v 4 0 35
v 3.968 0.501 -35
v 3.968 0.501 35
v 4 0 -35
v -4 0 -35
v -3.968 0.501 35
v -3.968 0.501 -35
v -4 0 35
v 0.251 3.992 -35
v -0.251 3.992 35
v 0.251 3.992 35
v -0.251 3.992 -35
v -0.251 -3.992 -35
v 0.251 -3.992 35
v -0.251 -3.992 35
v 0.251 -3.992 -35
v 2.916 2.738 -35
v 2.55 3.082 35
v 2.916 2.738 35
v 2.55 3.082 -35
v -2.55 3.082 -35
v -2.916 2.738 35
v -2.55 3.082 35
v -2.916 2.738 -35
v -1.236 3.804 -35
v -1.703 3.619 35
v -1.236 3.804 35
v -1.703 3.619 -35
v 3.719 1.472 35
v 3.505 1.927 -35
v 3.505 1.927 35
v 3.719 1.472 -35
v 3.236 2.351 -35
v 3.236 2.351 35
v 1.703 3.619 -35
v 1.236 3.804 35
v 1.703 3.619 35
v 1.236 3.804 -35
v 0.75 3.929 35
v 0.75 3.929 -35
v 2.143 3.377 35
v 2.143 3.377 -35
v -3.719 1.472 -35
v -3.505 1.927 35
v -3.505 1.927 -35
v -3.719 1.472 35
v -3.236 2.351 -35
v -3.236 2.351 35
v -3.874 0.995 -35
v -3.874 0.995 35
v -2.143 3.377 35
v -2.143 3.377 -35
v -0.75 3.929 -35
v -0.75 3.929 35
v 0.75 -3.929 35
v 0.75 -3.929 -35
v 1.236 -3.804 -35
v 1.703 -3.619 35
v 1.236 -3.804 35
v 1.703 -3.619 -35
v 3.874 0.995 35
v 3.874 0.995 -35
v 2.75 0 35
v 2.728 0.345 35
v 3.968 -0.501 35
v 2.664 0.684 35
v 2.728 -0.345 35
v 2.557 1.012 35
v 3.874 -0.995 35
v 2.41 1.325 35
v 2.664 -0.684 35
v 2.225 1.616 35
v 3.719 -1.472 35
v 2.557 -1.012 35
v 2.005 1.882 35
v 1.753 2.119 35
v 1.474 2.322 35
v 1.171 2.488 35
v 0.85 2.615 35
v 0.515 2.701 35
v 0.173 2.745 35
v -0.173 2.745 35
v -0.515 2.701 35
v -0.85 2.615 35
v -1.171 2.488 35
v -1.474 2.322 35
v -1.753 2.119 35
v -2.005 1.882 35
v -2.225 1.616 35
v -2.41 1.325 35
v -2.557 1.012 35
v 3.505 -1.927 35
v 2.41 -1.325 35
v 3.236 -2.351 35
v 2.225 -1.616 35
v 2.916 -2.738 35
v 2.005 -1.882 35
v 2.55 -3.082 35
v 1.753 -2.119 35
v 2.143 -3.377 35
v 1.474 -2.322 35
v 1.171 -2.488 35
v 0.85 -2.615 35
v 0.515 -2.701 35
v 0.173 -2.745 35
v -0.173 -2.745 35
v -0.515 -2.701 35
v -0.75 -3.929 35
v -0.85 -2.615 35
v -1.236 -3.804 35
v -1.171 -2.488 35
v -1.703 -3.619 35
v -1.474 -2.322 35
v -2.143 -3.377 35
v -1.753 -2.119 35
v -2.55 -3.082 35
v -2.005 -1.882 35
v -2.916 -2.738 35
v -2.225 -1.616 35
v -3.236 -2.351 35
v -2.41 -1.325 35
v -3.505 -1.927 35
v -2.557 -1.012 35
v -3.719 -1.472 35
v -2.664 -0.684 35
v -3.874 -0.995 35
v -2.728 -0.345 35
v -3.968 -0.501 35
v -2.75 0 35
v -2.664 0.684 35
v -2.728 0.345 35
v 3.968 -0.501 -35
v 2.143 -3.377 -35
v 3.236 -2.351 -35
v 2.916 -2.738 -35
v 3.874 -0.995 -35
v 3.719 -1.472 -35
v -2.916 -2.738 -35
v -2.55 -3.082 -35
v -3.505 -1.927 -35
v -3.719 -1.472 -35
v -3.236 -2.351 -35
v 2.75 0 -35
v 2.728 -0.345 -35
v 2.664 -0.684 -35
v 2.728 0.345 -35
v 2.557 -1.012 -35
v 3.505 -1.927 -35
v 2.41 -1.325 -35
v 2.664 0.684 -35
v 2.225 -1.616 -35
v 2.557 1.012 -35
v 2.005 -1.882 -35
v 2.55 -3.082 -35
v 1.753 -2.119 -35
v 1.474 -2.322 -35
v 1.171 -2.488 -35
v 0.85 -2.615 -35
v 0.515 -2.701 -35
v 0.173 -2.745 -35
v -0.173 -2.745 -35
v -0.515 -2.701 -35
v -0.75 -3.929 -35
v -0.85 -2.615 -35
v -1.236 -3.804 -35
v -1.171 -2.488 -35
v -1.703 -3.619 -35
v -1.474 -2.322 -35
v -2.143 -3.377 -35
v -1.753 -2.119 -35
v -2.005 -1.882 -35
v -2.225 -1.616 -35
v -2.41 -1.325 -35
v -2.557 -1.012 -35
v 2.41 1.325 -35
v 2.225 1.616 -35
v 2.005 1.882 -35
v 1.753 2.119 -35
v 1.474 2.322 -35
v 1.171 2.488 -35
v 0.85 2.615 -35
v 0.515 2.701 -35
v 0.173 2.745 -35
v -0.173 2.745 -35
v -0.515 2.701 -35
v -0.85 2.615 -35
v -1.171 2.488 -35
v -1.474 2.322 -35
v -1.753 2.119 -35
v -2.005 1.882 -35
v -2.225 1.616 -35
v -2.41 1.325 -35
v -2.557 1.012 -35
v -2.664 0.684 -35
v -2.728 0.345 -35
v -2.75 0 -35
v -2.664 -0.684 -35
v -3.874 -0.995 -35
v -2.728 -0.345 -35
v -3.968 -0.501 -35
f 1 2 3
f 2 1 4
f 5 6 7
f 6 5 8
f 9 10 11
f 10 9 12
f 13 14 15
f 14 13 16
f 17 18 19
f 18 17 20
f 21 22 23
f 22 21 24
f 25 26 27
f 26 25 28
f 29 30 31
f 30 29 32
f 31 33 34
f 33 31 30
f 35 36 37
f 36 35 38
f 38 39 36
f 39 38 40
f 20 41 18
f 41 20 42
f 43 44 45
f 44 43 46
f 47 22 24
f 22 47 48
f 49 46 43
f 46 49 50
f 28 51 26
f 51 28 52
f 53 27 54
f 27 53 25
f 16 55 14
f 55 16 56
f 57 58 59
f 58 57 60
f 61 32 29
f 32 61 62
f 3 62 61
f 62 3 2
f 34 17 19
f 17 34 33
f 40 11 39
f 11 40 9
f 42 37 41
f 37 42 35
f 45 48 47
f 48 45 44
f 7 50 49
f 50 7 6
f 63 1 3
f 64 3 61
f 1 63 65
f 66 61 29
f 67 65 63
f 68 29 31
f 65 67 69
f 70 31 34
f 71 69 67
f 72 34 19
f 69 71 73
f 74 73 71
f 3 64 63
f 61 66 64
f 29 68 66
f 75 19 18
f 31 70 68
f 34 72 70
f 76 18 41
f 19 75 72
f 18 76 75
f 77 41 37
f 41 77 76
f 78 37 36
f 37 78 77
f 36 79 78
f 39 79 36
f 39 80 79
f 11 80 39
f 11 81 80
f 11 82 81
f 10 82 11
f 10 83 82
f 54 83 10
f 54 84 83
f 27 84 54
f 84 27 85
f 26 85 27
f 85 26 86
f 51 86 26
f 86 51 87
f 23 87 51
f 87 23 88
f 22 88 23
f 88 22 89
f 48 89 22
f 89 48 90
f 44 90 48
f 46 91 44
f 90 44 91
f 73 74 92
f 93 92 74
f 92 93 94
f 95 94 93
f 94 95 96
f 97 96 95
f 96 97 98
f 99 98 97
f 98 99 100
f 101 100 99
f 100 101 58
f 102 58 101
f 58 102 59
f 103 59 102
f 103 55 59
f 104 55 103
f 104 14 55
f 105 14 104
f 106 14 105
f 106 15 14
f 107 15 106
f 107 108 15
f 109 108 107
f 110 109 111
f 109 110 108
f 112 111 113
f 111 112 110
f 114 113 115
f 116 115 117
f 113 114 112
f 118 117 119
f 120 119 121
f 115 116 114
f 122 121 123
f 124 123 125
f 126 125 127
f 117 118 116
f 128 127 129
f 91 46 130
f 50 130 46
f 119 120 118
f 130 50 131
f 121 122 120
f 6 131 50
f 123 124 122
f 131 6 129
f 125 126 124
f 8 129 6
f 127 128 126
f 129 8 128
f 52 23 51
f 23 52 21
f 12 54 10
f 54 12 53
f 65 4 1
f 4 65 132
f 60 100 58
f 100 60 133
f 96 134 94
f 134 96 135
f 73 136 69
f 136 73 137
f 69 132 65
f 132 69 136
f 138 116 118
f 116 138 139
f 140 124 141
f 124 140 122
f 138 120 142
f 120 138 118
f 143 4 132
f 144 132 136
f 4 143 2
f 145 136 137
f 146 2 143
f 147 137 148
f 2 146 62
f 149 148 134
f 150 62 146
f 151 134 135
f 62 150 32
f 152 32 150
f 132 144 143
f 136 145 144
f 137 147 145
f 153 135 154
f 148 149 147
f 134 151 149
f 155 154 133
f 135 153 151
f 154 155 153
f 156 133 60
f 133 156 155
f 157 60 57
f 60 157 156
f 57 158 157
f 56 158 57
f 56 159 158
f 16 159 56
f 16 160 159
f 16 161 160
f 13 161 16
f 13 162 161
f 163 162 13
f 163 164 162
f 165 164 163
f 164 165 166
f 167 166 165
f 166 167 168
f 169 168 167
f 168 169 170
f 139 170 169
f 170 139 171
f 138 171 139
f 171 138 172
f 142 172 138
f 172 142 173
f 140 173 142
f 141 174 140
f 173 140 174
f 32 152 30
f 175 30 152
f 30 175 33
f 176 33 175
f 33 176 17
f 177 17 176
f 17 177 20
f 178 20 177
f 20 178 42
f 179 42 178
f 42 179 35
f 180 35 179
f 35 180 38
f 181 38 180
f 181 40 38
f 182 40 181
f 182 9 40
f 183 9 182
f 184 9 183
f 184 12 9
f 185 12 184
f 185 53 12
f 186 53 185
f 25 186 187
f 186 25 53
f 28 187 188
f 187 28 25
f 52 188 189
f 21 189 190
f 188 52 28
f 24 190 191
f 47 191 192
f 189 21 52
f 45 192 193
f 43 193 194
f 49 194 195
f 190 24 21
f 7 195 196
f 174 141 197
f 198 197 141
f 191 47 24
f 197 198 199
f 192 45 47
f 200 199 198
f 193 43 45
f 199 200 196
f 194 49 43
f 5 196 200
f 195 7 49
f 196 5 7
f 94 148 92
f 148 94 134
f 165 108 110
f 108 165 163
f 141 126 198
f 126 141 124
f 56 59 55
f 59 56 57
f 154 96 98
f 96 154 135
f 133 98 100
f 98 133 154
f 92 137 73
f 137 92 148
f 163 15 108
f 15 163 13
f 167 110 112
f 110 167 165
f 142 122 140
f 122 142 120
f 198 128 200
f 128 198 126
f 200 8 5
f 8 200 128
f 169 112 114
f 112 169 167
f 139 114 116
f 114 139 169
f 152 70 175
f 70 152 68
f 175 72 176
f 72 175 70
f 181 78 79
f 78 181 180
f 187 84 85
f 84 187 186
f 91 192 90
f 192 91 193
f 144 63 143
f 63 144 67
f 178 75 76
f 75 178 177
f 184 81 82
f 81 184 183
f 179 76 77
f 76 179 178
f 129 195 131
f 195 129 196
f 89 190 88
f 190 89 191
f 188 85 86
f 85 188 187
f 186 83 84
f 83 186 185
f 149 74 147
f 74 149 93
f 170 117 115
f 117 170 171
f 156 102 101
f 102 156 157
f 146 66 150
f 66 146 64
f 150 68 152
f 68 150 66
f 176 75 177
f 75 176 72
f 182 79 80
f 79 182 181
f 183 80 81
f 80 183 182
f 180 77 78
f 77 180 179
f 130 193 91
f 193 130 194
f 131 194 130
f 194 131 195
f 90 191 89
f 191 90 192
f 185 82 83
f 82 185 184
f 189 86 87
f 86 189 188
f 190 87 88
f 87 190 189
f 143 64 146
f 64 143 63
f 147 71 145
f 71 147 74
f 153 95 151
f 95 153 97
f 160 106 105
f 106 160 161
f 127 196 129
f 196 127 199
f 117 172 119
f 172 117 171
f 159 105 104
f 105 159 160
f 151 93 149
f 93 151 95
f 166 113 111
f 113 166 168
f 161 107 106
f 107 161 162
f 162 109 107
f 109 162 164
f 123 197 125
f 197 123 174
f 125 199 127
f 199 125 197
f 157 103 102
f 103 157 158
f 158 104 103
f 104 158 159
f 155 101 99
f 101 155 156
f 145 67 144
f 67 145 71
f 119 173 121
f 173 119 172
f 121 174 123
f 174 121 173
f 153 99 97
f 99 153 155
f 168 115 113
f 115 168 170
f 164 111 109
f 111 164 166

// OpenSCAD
$fn = 50;


difference() {
	union() {
		translate(v = [0, 0, -35.0000000000]) {
			cylinder(h = 70, r = 4.0000000000);
		}
	}
	union() {
		translate(v = [0, 0, -100.0000000000]) {
			cylinder(h = 200, r = 2.7500000000);
		}
	}
}
